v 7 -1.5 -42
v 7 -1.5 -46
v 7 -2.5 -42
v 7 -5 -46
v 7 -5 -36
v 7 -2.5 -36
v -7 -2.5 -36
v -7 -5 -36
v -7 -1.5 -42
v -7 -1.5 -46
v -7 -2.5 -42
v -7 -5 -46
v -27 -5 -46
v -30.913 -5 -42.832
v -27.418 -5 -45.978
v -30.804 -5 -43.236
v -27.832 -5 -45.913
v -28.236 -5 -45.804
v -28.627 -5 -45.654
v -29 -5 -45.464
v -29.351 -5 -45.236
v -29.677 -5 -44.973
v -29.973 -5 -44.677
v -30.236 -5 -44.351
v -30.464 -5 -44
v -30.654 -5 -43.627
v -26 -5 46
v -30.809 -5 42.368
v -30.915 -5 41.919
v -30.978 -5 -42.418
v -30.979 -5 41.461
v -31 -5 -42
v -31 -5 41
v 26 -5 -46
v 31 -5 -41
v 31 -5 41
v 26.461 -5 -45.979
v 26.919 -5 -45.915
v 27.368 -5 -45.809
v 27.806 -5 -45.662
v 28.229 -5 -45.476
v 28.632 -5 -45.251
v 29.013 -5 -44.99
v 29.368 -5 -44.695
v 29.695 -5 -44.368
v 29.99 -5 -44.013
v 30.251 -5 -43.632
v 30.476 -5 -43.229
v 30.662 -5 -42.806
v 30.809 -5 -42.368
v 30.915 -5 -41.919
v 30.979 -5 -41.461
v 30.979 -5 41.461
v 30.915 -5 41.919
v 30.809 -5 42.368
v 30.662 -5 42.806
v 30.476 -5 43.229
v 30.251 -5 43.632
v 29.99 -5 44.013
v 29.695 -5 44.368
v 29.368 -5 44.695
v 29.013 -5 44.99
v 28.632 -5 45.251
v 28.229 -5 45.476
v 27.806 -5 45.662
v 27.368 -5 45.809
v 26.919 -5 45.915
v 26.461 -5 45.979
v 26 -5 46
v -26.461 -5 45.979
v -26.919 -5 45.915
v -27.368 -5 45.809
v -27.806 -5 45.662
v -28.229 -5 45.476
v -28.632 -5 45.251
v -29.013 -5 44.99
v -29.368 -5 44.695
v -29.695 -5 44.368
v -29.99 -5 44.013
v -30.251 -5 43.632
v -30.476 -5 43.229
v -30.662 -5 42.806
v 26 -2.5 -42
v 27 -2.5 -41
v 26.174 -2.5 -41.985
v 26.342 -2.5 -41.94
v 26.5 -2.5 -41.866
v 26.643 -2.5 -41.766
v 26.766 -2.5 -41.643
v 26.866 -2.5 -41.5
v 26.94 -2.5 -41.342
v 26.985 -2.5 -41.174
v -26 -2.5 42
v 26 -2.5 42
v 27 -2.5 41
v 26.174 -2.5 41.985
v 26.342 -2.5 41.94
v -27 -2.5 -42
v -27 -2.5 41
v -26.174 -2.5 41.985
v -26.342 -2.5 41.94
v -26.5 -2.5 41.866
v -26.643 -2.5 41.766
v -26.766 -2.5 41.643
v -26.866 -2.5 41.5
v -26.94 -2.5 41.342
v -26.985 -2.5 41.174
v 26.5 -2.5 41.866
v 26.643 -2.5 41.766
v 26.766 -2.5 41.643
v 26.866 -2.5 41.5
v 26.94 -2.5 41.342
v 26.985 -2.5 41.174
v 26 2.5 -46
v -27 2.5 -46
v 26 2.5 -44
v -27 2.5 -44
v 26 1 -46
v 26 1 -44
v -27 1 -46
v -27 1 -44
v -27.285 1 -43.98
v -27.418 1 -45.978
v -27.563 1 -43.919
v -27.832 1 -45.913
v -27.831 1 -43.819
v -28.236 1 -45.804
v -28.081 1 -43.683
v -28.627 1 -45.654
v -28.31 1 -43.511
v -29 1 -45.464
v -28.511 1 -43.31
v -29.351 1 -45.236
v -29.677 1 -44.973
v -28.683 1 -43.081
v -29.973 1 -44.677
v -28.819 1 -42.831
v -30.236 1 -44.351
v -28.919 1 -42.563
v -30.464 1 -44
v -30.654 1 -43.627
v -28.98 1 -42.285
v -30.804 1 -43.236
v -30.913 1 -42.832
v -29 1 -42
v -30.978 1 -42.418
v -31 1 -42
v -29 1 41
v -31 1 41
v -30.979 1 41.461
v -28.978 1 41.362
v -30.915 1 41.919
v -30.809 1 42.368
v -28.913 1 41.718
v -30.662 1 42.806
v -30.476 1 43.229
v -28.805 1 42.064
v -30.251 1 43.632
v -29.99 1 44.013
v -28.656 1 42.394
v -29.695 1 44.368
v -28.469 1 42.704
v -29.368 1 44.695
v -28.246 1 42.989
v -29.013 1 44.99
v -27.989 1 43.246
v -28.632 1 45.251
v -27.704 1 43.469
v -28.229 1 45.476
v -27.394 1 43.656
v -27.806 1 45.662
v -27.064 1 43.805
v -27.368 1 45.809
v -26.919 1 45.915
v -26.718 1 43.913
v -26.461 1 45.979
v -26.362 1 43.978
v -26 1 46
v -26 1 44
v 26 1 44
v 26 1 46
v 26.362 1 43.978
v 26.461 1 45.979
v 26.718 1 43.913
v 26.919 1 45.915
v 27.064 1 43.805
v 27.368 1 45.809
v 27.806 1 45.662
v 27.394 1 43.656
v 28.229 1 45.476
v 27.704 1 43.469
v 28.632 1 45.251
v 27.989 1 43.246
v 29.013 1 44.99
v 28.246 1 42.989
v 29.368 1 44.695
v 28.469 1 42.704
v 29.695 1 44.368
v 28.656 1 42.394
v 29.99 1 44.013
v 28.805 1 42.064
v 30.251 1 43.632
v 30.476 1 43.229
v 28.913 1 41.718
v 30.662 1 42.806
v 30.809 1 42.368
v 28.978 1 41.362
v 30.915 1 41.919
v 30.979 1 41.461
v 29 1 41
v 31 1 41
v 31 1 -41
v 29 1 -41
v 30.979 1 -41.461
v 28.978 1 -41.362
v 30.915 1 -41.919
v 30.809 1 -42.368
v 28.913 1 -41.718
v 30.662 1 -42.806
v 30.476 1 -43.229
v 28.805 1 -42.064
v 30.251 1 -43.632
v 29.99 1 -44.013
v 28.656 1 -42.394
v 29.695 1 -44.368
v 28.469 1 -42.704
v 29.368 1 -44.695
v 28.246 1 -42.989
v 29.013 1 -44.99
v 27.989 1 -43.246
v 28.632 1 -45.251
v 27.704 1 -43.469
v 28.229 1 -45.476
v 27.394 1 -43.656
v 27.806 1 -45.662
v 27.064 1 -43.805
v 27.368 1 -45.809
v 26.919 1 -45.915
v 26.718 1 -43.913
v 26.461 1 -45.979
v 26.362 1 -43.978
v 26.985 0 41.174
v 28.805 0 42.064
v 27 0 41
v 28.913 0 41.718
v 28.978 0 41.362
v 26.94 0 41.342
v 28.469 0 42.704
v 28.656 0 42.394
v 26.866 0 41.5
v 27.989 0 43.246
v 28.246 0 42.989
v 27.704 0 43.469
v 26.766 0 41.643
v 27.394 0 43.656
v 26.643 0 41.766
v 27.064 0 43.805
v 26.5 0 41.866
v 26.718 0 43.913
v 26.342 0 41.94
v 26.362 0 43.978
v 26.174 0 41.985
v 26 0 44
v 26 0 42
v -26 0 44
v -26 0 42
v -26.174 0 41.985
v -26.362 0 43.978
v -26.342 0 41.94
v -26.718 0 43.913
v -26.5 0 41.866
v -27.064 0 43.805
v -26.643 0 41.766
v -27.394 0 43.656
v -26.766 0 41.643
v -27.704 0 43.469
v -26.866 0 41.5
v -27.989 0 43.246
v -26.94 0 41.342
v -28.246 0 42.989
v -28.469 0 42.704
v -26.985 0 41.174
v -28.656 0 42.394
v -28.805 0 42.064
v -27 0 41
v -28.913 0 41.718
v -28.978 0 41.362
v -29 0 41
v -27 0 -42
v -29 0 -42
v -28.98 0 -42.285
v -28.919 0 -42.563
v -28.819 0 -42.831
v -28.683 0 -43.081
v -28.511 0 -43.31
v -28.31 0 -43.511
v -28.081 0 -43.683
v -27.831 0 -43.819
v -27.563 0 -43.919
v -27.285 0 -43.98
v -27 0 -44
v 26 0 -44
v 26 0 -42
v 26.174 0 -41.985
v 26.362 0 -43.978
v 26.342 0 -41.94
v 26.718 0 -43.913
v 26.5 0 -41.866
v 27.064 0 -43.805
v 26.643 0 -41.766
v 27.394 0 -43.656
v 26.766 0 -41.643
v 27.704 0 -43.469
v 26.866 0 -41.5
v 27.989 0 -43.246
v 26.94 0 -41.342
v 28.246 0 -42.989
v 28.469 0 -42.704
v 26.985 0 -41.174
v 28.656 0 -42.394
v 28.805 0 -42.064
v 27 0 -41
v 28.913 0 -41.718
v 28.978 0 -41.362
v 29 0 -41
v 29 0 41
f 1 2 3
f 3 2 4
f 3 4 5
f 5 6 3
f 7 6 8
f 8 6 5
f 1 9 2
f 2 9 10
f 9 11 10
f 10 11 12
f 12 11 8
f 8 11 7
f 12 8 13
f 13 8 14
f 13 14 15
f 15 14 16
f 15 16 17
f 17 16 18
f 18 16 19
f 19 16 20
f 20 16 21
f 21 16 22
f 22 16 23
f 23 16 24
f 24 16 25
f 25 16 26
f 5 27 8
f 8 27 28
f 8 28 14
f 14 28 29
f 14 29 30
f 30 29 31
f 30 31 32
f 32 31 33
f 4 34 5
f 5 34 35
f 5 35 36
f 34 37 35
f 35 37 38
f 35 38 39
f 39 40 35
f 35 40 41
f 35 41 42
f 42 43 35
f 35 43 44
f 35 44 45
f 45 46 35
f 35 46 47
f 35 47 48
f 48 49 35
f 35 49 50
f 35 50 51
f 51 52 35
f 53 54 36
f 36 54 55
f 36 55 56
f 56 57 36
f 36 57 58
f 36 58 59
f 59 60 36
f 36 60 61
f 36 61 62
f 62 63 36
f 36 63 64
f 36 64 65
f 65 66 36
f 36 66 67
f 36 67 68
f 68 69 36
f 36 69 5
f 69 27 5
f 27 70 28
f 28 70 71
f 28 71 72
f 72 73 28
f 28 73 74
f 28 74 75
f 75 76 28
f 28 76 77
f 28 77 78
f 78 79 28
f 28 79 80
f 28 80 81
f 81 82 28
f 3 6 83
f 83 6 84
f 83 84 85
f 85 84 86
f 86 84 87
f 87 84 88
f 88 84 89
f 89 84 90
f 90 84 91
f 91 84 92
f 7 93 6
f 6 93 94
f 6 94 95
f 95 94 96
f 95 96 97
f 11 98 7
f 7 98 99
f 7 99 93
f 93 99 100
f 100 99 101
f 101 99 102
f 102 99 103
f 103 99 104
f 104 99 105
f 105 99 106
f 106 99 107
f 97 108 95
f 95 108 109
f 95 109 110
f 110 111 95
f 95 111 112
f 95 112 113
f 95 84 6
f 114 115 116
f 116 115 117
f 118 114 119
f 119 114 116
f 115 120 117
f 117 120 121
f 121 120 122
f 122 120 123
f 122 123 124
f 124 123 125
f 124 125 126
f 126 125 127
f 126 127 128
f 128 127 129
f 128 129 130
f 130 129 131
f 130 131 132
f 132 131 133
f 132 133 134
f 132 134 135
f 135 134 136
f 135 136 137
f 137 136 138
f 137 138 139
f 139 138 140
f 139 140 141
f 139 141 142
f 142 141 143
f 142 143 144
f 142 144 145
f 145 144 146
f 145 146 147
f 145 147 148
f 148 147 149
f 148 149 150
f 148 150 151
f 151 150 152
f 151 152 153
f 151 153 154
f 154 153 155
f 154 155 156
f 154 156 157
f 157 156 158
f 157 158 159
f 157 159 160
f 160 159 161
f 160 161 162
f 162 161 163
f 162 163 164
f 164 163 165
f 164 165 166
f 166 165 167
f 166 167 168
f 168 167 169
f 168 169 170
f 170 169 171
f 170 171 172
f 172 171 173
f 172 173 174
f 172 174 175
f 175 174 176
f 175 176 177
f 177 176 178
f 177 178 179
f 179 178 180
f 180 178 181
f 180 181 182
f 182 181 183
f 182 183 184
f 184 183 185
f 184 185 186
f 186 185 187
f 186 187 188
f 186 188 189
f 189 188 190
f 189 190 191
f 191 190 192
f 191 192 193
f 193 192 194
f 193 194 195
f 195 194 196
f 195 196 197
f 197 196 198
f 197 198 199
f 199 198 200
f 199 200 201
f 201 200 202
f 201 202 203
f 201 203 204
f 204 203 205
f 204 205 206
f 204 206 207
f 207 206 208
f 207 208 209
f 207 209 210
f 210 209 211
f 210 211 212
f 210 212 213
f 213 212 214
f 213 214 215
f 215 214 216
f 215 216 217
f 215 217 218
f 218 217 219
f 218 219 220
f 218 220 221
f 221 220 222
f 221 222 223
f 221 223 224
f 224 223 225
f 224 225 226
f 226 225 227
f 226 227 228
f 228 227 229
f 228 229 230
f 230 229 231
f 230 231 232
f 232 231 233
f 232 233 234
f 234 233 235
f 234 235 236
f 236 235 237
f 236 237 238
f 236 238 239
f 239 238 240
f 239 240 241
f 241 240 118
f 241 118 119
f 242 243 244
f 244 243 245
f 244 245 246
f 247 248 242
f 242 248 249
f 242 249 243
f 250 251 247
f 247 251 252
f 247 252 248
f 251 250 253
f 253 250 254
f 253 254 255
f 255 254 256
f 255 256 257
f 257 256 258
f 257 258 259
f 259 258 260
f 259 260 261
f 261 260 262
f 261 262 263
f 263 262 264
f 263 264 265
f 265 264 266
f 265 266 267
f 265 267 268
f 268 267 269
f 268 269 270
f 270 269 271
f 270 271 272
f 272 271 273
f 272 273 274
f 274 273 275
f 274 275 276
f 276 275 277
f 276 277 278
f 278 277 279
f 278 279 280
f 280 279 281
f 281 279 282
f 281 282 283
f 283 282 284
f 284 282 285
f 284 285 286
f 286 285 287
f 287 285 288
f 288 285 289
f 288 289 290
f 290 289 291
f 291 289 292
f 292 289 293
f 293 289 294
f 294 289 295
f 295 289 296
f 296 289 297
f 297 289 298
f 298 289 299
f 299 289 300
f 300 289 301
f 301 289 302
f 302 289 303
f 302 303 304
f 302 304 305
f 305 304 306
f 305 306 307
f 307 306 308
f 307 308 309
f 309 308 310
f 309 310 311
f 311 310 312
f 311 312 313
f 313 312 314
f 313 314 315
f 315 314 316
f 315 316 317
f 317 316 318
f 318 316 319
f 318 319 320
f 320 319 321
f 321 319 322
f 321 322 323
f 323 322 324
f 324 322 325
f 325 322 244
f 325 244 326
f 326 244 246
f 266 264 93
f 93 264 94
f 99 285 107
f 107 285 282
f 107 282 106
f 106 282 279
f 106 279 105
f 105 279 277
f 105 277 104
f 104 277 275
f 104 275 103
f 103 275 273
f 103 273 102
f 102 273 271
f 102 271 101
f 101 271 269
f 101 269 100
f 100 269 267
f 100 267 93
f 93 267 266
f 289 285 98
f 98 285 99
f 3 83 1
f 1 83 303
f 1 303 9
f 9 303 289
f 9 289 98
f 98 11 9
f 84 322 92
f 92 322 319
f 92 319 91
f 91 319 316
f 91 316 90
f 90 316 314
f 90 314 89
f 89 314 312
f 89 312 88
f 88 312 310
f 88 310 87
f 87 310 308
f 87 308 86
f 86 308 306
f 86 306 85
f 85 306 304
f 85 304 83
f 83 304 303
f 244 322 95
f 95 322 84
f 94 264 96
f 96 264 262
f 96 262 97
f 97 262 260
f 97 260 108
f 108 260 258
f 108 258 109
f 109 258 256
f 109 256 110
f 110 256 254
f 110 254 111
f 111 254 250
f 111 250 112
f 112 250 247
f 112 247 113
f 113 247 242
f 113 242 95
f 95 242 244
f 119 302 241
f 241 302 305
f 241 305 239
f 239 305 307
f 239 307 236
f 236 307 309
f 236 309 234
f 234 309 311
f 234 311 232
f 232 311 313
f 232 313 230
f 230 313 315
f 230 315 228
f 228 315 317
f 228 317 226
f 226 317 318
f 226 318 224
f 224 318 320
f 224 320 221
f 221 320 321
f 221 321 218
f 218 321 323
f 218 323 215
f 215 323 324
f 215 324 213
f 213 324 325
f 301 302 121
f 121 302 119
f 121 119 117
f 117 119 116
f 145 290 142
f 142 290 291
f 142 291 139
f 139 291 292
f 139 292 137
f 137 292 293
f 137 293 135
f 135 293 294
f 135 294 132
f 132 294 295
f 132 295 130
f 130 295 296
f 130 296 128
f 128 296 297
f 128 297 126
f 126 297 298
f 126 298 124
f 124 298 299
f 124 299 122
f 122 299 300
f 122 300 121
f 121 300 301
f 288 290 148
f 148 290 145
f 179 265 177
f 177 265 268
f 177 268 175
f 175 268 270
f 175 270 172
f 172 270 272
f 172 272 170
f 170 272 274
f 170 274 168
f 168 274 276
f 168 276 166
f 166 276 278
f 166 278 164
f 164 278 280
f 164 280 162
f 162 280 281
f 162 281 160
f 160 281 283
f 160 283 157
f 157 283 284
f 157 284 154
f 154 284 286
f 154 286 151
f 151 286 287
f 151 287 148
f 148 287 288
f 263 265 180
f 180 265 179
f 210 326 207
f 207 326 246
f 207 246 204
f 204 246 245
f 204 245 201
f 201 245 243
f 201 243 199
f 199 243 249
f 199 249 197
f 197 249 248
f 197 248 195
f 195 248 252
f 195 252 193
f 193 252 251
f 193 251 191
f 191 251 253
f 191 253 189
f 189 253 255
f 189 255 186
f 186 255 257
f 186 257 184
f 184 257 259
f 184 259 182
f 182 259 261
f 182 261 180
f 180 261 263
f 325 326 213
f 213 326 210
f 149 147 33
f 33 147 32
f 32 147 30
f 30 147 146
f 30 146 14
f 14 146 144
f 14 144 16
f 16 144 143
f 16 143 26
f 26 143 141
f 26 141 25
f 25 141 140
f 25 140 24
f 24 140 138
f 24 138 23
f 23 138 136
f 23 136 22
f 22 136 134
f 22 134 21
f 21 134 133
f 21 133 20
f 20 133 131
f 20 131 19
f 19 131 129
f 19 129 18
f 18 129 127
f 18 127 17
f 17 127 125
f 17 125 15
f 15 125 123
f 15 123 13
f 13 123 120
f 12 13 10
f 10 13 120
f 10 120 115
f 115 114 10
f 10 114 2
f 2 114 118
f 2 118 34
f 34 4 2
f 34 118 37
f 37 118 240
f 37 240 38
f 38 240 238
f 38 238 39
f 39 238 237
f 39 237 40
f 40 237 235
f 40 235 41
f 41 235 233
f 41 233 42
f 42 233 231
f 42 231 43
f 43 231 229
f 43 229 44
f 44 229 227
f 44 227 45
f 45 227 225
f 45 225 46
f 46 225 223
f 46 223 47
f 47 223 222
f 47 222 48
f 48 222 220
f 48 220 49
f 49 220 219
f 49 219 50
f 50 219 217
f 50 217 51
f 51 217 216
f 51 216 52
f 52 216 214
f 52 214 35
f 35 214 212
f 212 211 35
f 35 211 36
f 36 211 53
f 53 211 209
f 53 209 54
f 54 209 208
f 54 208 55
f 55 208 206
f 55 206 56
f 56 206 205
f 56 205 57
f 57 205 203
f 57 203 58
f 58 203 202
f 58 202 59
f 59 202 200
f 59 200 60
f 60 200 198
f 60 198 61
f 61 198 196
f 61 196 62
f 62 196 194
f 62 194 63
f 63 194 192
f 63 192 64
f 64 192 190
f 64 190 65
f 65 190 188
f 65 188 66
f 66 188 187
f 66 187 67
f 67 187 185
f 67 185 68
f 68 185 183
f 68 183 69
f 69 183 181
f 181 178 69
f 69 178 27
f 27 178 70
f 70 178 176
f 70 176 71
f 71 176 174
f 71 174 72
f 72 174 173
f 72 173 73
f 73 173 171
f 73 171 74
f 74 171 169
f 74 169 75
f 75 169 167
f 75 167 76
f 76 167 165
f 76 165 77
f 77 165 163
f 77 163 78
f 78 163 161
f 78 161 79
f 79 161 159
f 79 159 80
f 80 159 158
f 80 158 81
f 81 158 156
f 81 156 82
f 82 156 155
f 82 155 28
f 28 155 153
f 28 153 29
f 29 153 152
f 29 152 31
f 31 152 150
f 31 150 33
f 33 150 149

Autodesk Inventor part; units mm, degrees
ref_plane "YZ Plane" through (0, 0, 0) normal (1, 0, 0) x (0, 1, 0)
ref_plane "XZ Plane" through (0, 0, 0) normal (0, 1, 0) x (-1, 0, 0)
ref_plane "XY Plane" through (0, 0, 0) normal (0, 0, 1) x (1, 0, 0)
sketch "Sketch1" plane through (0, 0, 0) normal (0, 1, 0) x (-1, 0, 0)
  line L0 (-26, 44) -> (26, 44)
  line L1 (29, 41) -> (29, -42)
  line L2 (27, -44) -> (-26, -44)
  line L3 (-29, -41) -> (-29, 41)
  line L4 (-29, 44) -> (29, -44) construction
  line L5 (29, 44) -> (-29, -44) construction
  arc A0 (27, -44) -> (29, -42) centre (27, -42) ccw
  arc A1 (-29, -41) -> (-26, -44) centre (-26, -41) ccw
  arc A2 (-26, 44) -> (-29, 41) centre (-26, 41) ccw
  arc A3 (29, 41) -> (26, 44) centre (26, 41) ccw
  line L6 (31, -42) -> (31, 41)
  arc A4 (31, 41) -> (26, 46) centre (26, 41) ccw
  line L7 (26, 46) -> (-26, 46)
  arc A5 (-26, 46) -> (-31, 41) centre (-26, 41) ccw
  line L8 (-31, 41) -> (-31, -41)
  arc A6 (-31, -41) -> (-26, -46) centre (-26, -41) ccw
  line L9 (-26, -46) -> (27, -46)
  arc A7 (27, -46) -> (31, -42) centre (27, -42) ccw
  point P0 (0, 0)
  dimension "d0" = 58
  dimension "d1" = 88
  dimension "d2" = 2
  dimension "d3" = 3
  dimension "d4" = 2
extrude "Extrusion1" add sketch "Sketch1" along normal blind 1
sketch "Sketch2" plane through (0, 0, 0) normal (0, -1, 0) x (1, 0, 0)
  arc A0 (-26, 46) -> (-31, 41) centre (-26, 41) ccw projected
  line L0 (-26, 46) -> (26, 46) projected
  arc A1 (31, 41) -> (26, 46) centre (26, 41) ccw projected
  line L1 (31, 41) -> (31, -41) projected
  arc A2 (26, -46) -> (31, -41) centre (26, -41) ccw projected
  line L2 (26, -46) -> (-27, -46) projected
  arc A3 (-31, -42) -> (-27, -46) centre (-27, -42) ccw projected
  line L3 (-31, -42) -> (-31, 41) projected
  line L4 (-27, -46) -> (26, -46)
  line L5 (31, -41) -> (31, 41)
  line L6 (26, 46) -> (-26, 46)
  line L7 (-31, 41) -> (-31, -42)
  line L8 (-30, -44.5) -> (30, 44.5) construction
  line L9 (30, -44.5) -> (-30, 44.5) construction
  arc A4 (-26, 46) -> (-31, 41) centre (-26, 41) ccw
  arc A5 (31, 41) -> (26, 46) centre (26, 41) ccw
  arc A6 (26, -44) -> (29, -41) centre (26, -41) ccw projected
  arc A7 (26, -46) -> (31, -41) centre (26, -41) ccw
  arc A8 (-31, -42) -> (-27, -46) centre (-27, -42) ccw
  line L10 (26, 42) -> (-26, 42)
  arc A9 (-26, 42) -> (-27, 41) centre (-26, 41) ccw
  line L11 (-27, 41) -> (-27, -42)
  line L12 (-27, -42) -> (26, -42)
  arc A10 (26, -42) -> (27, -41) centre (26, -41) ccw
  line L13 (27, -41) -> (27, 41)
  arc A11 (27, 41) -> (26, 42) centre (26, 41) ccw
  point P0 (0, 0)
  dimension "d12" = 4
extrude "Extrusion2" add sketch "Sketch2" along normal blind 2.5
sketch "Sketch3" plane through (26, 1, -46) normal (0, 0, -1) x (-1, 0, 0)
  line L0 (53, -3.5) -> (53, 0) projected
  line L1 (53, 0) -> (0, 0)
  line L2 (0, 0) -> (0, 1.5)
  line L3 (0, 1.5) -> (53, 1.5)
  line L4 (53, 1.5) -> (53, 0)
  point P0 (26, -1)
  dimension "d9" = 1.5
extrude "Extrusion3" add sketch "Sketch3" against normal blind 2
sketch "Sketch4" plane through (0, -2.5, 0) normal (0, -1, 0) x (1, 0, 0)
  line L0 (26, 46) -> (-26, 46)
  line L1 (-31, 41) -> (-31, -42)
  line L2 (-27, -46) -> (26, -46)
  line L3 (31, -41) -> (31, 41)
  line L4 (30, 44.5) -> (-30, -44.5) construction
  line L5 (-30, 44.5) -> (30, -44.5) construction
  line L6 (-27, -46) -> (26, -46) projected
  line L7 (-31, 41) -> (-31, -42) projected
  arc A0 (26, -46) -> (31, -41) centre (26, -41) ccw projected
  arc A1 (-31, -42) -> (-27, -46) centre (-27, -42) ccw projected
  arc A2 (-26, 46) -> (-31, 41) centre (-26, 41) ccw projected
  arc A3 (31, 41) -> (26, 46) centre (26, 41) ccw projected
  arc A4 (26, -46) -> (31, -41) centre (26, -41) ccw
  line L8 (26, -42) -> (-27, -42) projected
  arc A5 (-31, -42) -> (-27, -46) centre (-27, -42) ccw
  arc A6 (-26, 46) -> (-31, 41) centre (-26, 41) ccw
  arc A7 (31, 41) -> (26, 46) centre (26, 41) ccw
  line L9 (26, 46) -> (-26, 46) projected
  point P0 (0, 0)
  point P1 (-31, 41)
  point P2 (-31, -42)
  point P3 (26, -46)
extrude "Extrusion4" add sketch "Sketch4" along normal blind 2.5
sketch "Sketch5" plane through (26, 2.5, -46) normal (0, 0, -1) x (-1, 0, 0)
  line L0 (53, -7.5) -> (0, -7.5) projected
  line L1 (19, -7.5) -> (33, -7.5)
  line L2 (33, -7.5) -> (33, -4)
  line L3 (33, -4) -> (19, -4)
  line L4 (19, -4) -> (19, -7.5)
  line L5 (19, -7.5) -> (33, -4) construction
  line L6 (33, -7.5) -> (19, -4) construction
  point P0 (26, -2.5)
  point P1 (26, -5.75)
  dimension "d16" = 14
  dimension "d17" = 0
  dimension "d18" = 3.5
extrude "Extrusion5" cut sketch "Sketch5" against normal blind 10
properties part number "piholder-proto-v3"
